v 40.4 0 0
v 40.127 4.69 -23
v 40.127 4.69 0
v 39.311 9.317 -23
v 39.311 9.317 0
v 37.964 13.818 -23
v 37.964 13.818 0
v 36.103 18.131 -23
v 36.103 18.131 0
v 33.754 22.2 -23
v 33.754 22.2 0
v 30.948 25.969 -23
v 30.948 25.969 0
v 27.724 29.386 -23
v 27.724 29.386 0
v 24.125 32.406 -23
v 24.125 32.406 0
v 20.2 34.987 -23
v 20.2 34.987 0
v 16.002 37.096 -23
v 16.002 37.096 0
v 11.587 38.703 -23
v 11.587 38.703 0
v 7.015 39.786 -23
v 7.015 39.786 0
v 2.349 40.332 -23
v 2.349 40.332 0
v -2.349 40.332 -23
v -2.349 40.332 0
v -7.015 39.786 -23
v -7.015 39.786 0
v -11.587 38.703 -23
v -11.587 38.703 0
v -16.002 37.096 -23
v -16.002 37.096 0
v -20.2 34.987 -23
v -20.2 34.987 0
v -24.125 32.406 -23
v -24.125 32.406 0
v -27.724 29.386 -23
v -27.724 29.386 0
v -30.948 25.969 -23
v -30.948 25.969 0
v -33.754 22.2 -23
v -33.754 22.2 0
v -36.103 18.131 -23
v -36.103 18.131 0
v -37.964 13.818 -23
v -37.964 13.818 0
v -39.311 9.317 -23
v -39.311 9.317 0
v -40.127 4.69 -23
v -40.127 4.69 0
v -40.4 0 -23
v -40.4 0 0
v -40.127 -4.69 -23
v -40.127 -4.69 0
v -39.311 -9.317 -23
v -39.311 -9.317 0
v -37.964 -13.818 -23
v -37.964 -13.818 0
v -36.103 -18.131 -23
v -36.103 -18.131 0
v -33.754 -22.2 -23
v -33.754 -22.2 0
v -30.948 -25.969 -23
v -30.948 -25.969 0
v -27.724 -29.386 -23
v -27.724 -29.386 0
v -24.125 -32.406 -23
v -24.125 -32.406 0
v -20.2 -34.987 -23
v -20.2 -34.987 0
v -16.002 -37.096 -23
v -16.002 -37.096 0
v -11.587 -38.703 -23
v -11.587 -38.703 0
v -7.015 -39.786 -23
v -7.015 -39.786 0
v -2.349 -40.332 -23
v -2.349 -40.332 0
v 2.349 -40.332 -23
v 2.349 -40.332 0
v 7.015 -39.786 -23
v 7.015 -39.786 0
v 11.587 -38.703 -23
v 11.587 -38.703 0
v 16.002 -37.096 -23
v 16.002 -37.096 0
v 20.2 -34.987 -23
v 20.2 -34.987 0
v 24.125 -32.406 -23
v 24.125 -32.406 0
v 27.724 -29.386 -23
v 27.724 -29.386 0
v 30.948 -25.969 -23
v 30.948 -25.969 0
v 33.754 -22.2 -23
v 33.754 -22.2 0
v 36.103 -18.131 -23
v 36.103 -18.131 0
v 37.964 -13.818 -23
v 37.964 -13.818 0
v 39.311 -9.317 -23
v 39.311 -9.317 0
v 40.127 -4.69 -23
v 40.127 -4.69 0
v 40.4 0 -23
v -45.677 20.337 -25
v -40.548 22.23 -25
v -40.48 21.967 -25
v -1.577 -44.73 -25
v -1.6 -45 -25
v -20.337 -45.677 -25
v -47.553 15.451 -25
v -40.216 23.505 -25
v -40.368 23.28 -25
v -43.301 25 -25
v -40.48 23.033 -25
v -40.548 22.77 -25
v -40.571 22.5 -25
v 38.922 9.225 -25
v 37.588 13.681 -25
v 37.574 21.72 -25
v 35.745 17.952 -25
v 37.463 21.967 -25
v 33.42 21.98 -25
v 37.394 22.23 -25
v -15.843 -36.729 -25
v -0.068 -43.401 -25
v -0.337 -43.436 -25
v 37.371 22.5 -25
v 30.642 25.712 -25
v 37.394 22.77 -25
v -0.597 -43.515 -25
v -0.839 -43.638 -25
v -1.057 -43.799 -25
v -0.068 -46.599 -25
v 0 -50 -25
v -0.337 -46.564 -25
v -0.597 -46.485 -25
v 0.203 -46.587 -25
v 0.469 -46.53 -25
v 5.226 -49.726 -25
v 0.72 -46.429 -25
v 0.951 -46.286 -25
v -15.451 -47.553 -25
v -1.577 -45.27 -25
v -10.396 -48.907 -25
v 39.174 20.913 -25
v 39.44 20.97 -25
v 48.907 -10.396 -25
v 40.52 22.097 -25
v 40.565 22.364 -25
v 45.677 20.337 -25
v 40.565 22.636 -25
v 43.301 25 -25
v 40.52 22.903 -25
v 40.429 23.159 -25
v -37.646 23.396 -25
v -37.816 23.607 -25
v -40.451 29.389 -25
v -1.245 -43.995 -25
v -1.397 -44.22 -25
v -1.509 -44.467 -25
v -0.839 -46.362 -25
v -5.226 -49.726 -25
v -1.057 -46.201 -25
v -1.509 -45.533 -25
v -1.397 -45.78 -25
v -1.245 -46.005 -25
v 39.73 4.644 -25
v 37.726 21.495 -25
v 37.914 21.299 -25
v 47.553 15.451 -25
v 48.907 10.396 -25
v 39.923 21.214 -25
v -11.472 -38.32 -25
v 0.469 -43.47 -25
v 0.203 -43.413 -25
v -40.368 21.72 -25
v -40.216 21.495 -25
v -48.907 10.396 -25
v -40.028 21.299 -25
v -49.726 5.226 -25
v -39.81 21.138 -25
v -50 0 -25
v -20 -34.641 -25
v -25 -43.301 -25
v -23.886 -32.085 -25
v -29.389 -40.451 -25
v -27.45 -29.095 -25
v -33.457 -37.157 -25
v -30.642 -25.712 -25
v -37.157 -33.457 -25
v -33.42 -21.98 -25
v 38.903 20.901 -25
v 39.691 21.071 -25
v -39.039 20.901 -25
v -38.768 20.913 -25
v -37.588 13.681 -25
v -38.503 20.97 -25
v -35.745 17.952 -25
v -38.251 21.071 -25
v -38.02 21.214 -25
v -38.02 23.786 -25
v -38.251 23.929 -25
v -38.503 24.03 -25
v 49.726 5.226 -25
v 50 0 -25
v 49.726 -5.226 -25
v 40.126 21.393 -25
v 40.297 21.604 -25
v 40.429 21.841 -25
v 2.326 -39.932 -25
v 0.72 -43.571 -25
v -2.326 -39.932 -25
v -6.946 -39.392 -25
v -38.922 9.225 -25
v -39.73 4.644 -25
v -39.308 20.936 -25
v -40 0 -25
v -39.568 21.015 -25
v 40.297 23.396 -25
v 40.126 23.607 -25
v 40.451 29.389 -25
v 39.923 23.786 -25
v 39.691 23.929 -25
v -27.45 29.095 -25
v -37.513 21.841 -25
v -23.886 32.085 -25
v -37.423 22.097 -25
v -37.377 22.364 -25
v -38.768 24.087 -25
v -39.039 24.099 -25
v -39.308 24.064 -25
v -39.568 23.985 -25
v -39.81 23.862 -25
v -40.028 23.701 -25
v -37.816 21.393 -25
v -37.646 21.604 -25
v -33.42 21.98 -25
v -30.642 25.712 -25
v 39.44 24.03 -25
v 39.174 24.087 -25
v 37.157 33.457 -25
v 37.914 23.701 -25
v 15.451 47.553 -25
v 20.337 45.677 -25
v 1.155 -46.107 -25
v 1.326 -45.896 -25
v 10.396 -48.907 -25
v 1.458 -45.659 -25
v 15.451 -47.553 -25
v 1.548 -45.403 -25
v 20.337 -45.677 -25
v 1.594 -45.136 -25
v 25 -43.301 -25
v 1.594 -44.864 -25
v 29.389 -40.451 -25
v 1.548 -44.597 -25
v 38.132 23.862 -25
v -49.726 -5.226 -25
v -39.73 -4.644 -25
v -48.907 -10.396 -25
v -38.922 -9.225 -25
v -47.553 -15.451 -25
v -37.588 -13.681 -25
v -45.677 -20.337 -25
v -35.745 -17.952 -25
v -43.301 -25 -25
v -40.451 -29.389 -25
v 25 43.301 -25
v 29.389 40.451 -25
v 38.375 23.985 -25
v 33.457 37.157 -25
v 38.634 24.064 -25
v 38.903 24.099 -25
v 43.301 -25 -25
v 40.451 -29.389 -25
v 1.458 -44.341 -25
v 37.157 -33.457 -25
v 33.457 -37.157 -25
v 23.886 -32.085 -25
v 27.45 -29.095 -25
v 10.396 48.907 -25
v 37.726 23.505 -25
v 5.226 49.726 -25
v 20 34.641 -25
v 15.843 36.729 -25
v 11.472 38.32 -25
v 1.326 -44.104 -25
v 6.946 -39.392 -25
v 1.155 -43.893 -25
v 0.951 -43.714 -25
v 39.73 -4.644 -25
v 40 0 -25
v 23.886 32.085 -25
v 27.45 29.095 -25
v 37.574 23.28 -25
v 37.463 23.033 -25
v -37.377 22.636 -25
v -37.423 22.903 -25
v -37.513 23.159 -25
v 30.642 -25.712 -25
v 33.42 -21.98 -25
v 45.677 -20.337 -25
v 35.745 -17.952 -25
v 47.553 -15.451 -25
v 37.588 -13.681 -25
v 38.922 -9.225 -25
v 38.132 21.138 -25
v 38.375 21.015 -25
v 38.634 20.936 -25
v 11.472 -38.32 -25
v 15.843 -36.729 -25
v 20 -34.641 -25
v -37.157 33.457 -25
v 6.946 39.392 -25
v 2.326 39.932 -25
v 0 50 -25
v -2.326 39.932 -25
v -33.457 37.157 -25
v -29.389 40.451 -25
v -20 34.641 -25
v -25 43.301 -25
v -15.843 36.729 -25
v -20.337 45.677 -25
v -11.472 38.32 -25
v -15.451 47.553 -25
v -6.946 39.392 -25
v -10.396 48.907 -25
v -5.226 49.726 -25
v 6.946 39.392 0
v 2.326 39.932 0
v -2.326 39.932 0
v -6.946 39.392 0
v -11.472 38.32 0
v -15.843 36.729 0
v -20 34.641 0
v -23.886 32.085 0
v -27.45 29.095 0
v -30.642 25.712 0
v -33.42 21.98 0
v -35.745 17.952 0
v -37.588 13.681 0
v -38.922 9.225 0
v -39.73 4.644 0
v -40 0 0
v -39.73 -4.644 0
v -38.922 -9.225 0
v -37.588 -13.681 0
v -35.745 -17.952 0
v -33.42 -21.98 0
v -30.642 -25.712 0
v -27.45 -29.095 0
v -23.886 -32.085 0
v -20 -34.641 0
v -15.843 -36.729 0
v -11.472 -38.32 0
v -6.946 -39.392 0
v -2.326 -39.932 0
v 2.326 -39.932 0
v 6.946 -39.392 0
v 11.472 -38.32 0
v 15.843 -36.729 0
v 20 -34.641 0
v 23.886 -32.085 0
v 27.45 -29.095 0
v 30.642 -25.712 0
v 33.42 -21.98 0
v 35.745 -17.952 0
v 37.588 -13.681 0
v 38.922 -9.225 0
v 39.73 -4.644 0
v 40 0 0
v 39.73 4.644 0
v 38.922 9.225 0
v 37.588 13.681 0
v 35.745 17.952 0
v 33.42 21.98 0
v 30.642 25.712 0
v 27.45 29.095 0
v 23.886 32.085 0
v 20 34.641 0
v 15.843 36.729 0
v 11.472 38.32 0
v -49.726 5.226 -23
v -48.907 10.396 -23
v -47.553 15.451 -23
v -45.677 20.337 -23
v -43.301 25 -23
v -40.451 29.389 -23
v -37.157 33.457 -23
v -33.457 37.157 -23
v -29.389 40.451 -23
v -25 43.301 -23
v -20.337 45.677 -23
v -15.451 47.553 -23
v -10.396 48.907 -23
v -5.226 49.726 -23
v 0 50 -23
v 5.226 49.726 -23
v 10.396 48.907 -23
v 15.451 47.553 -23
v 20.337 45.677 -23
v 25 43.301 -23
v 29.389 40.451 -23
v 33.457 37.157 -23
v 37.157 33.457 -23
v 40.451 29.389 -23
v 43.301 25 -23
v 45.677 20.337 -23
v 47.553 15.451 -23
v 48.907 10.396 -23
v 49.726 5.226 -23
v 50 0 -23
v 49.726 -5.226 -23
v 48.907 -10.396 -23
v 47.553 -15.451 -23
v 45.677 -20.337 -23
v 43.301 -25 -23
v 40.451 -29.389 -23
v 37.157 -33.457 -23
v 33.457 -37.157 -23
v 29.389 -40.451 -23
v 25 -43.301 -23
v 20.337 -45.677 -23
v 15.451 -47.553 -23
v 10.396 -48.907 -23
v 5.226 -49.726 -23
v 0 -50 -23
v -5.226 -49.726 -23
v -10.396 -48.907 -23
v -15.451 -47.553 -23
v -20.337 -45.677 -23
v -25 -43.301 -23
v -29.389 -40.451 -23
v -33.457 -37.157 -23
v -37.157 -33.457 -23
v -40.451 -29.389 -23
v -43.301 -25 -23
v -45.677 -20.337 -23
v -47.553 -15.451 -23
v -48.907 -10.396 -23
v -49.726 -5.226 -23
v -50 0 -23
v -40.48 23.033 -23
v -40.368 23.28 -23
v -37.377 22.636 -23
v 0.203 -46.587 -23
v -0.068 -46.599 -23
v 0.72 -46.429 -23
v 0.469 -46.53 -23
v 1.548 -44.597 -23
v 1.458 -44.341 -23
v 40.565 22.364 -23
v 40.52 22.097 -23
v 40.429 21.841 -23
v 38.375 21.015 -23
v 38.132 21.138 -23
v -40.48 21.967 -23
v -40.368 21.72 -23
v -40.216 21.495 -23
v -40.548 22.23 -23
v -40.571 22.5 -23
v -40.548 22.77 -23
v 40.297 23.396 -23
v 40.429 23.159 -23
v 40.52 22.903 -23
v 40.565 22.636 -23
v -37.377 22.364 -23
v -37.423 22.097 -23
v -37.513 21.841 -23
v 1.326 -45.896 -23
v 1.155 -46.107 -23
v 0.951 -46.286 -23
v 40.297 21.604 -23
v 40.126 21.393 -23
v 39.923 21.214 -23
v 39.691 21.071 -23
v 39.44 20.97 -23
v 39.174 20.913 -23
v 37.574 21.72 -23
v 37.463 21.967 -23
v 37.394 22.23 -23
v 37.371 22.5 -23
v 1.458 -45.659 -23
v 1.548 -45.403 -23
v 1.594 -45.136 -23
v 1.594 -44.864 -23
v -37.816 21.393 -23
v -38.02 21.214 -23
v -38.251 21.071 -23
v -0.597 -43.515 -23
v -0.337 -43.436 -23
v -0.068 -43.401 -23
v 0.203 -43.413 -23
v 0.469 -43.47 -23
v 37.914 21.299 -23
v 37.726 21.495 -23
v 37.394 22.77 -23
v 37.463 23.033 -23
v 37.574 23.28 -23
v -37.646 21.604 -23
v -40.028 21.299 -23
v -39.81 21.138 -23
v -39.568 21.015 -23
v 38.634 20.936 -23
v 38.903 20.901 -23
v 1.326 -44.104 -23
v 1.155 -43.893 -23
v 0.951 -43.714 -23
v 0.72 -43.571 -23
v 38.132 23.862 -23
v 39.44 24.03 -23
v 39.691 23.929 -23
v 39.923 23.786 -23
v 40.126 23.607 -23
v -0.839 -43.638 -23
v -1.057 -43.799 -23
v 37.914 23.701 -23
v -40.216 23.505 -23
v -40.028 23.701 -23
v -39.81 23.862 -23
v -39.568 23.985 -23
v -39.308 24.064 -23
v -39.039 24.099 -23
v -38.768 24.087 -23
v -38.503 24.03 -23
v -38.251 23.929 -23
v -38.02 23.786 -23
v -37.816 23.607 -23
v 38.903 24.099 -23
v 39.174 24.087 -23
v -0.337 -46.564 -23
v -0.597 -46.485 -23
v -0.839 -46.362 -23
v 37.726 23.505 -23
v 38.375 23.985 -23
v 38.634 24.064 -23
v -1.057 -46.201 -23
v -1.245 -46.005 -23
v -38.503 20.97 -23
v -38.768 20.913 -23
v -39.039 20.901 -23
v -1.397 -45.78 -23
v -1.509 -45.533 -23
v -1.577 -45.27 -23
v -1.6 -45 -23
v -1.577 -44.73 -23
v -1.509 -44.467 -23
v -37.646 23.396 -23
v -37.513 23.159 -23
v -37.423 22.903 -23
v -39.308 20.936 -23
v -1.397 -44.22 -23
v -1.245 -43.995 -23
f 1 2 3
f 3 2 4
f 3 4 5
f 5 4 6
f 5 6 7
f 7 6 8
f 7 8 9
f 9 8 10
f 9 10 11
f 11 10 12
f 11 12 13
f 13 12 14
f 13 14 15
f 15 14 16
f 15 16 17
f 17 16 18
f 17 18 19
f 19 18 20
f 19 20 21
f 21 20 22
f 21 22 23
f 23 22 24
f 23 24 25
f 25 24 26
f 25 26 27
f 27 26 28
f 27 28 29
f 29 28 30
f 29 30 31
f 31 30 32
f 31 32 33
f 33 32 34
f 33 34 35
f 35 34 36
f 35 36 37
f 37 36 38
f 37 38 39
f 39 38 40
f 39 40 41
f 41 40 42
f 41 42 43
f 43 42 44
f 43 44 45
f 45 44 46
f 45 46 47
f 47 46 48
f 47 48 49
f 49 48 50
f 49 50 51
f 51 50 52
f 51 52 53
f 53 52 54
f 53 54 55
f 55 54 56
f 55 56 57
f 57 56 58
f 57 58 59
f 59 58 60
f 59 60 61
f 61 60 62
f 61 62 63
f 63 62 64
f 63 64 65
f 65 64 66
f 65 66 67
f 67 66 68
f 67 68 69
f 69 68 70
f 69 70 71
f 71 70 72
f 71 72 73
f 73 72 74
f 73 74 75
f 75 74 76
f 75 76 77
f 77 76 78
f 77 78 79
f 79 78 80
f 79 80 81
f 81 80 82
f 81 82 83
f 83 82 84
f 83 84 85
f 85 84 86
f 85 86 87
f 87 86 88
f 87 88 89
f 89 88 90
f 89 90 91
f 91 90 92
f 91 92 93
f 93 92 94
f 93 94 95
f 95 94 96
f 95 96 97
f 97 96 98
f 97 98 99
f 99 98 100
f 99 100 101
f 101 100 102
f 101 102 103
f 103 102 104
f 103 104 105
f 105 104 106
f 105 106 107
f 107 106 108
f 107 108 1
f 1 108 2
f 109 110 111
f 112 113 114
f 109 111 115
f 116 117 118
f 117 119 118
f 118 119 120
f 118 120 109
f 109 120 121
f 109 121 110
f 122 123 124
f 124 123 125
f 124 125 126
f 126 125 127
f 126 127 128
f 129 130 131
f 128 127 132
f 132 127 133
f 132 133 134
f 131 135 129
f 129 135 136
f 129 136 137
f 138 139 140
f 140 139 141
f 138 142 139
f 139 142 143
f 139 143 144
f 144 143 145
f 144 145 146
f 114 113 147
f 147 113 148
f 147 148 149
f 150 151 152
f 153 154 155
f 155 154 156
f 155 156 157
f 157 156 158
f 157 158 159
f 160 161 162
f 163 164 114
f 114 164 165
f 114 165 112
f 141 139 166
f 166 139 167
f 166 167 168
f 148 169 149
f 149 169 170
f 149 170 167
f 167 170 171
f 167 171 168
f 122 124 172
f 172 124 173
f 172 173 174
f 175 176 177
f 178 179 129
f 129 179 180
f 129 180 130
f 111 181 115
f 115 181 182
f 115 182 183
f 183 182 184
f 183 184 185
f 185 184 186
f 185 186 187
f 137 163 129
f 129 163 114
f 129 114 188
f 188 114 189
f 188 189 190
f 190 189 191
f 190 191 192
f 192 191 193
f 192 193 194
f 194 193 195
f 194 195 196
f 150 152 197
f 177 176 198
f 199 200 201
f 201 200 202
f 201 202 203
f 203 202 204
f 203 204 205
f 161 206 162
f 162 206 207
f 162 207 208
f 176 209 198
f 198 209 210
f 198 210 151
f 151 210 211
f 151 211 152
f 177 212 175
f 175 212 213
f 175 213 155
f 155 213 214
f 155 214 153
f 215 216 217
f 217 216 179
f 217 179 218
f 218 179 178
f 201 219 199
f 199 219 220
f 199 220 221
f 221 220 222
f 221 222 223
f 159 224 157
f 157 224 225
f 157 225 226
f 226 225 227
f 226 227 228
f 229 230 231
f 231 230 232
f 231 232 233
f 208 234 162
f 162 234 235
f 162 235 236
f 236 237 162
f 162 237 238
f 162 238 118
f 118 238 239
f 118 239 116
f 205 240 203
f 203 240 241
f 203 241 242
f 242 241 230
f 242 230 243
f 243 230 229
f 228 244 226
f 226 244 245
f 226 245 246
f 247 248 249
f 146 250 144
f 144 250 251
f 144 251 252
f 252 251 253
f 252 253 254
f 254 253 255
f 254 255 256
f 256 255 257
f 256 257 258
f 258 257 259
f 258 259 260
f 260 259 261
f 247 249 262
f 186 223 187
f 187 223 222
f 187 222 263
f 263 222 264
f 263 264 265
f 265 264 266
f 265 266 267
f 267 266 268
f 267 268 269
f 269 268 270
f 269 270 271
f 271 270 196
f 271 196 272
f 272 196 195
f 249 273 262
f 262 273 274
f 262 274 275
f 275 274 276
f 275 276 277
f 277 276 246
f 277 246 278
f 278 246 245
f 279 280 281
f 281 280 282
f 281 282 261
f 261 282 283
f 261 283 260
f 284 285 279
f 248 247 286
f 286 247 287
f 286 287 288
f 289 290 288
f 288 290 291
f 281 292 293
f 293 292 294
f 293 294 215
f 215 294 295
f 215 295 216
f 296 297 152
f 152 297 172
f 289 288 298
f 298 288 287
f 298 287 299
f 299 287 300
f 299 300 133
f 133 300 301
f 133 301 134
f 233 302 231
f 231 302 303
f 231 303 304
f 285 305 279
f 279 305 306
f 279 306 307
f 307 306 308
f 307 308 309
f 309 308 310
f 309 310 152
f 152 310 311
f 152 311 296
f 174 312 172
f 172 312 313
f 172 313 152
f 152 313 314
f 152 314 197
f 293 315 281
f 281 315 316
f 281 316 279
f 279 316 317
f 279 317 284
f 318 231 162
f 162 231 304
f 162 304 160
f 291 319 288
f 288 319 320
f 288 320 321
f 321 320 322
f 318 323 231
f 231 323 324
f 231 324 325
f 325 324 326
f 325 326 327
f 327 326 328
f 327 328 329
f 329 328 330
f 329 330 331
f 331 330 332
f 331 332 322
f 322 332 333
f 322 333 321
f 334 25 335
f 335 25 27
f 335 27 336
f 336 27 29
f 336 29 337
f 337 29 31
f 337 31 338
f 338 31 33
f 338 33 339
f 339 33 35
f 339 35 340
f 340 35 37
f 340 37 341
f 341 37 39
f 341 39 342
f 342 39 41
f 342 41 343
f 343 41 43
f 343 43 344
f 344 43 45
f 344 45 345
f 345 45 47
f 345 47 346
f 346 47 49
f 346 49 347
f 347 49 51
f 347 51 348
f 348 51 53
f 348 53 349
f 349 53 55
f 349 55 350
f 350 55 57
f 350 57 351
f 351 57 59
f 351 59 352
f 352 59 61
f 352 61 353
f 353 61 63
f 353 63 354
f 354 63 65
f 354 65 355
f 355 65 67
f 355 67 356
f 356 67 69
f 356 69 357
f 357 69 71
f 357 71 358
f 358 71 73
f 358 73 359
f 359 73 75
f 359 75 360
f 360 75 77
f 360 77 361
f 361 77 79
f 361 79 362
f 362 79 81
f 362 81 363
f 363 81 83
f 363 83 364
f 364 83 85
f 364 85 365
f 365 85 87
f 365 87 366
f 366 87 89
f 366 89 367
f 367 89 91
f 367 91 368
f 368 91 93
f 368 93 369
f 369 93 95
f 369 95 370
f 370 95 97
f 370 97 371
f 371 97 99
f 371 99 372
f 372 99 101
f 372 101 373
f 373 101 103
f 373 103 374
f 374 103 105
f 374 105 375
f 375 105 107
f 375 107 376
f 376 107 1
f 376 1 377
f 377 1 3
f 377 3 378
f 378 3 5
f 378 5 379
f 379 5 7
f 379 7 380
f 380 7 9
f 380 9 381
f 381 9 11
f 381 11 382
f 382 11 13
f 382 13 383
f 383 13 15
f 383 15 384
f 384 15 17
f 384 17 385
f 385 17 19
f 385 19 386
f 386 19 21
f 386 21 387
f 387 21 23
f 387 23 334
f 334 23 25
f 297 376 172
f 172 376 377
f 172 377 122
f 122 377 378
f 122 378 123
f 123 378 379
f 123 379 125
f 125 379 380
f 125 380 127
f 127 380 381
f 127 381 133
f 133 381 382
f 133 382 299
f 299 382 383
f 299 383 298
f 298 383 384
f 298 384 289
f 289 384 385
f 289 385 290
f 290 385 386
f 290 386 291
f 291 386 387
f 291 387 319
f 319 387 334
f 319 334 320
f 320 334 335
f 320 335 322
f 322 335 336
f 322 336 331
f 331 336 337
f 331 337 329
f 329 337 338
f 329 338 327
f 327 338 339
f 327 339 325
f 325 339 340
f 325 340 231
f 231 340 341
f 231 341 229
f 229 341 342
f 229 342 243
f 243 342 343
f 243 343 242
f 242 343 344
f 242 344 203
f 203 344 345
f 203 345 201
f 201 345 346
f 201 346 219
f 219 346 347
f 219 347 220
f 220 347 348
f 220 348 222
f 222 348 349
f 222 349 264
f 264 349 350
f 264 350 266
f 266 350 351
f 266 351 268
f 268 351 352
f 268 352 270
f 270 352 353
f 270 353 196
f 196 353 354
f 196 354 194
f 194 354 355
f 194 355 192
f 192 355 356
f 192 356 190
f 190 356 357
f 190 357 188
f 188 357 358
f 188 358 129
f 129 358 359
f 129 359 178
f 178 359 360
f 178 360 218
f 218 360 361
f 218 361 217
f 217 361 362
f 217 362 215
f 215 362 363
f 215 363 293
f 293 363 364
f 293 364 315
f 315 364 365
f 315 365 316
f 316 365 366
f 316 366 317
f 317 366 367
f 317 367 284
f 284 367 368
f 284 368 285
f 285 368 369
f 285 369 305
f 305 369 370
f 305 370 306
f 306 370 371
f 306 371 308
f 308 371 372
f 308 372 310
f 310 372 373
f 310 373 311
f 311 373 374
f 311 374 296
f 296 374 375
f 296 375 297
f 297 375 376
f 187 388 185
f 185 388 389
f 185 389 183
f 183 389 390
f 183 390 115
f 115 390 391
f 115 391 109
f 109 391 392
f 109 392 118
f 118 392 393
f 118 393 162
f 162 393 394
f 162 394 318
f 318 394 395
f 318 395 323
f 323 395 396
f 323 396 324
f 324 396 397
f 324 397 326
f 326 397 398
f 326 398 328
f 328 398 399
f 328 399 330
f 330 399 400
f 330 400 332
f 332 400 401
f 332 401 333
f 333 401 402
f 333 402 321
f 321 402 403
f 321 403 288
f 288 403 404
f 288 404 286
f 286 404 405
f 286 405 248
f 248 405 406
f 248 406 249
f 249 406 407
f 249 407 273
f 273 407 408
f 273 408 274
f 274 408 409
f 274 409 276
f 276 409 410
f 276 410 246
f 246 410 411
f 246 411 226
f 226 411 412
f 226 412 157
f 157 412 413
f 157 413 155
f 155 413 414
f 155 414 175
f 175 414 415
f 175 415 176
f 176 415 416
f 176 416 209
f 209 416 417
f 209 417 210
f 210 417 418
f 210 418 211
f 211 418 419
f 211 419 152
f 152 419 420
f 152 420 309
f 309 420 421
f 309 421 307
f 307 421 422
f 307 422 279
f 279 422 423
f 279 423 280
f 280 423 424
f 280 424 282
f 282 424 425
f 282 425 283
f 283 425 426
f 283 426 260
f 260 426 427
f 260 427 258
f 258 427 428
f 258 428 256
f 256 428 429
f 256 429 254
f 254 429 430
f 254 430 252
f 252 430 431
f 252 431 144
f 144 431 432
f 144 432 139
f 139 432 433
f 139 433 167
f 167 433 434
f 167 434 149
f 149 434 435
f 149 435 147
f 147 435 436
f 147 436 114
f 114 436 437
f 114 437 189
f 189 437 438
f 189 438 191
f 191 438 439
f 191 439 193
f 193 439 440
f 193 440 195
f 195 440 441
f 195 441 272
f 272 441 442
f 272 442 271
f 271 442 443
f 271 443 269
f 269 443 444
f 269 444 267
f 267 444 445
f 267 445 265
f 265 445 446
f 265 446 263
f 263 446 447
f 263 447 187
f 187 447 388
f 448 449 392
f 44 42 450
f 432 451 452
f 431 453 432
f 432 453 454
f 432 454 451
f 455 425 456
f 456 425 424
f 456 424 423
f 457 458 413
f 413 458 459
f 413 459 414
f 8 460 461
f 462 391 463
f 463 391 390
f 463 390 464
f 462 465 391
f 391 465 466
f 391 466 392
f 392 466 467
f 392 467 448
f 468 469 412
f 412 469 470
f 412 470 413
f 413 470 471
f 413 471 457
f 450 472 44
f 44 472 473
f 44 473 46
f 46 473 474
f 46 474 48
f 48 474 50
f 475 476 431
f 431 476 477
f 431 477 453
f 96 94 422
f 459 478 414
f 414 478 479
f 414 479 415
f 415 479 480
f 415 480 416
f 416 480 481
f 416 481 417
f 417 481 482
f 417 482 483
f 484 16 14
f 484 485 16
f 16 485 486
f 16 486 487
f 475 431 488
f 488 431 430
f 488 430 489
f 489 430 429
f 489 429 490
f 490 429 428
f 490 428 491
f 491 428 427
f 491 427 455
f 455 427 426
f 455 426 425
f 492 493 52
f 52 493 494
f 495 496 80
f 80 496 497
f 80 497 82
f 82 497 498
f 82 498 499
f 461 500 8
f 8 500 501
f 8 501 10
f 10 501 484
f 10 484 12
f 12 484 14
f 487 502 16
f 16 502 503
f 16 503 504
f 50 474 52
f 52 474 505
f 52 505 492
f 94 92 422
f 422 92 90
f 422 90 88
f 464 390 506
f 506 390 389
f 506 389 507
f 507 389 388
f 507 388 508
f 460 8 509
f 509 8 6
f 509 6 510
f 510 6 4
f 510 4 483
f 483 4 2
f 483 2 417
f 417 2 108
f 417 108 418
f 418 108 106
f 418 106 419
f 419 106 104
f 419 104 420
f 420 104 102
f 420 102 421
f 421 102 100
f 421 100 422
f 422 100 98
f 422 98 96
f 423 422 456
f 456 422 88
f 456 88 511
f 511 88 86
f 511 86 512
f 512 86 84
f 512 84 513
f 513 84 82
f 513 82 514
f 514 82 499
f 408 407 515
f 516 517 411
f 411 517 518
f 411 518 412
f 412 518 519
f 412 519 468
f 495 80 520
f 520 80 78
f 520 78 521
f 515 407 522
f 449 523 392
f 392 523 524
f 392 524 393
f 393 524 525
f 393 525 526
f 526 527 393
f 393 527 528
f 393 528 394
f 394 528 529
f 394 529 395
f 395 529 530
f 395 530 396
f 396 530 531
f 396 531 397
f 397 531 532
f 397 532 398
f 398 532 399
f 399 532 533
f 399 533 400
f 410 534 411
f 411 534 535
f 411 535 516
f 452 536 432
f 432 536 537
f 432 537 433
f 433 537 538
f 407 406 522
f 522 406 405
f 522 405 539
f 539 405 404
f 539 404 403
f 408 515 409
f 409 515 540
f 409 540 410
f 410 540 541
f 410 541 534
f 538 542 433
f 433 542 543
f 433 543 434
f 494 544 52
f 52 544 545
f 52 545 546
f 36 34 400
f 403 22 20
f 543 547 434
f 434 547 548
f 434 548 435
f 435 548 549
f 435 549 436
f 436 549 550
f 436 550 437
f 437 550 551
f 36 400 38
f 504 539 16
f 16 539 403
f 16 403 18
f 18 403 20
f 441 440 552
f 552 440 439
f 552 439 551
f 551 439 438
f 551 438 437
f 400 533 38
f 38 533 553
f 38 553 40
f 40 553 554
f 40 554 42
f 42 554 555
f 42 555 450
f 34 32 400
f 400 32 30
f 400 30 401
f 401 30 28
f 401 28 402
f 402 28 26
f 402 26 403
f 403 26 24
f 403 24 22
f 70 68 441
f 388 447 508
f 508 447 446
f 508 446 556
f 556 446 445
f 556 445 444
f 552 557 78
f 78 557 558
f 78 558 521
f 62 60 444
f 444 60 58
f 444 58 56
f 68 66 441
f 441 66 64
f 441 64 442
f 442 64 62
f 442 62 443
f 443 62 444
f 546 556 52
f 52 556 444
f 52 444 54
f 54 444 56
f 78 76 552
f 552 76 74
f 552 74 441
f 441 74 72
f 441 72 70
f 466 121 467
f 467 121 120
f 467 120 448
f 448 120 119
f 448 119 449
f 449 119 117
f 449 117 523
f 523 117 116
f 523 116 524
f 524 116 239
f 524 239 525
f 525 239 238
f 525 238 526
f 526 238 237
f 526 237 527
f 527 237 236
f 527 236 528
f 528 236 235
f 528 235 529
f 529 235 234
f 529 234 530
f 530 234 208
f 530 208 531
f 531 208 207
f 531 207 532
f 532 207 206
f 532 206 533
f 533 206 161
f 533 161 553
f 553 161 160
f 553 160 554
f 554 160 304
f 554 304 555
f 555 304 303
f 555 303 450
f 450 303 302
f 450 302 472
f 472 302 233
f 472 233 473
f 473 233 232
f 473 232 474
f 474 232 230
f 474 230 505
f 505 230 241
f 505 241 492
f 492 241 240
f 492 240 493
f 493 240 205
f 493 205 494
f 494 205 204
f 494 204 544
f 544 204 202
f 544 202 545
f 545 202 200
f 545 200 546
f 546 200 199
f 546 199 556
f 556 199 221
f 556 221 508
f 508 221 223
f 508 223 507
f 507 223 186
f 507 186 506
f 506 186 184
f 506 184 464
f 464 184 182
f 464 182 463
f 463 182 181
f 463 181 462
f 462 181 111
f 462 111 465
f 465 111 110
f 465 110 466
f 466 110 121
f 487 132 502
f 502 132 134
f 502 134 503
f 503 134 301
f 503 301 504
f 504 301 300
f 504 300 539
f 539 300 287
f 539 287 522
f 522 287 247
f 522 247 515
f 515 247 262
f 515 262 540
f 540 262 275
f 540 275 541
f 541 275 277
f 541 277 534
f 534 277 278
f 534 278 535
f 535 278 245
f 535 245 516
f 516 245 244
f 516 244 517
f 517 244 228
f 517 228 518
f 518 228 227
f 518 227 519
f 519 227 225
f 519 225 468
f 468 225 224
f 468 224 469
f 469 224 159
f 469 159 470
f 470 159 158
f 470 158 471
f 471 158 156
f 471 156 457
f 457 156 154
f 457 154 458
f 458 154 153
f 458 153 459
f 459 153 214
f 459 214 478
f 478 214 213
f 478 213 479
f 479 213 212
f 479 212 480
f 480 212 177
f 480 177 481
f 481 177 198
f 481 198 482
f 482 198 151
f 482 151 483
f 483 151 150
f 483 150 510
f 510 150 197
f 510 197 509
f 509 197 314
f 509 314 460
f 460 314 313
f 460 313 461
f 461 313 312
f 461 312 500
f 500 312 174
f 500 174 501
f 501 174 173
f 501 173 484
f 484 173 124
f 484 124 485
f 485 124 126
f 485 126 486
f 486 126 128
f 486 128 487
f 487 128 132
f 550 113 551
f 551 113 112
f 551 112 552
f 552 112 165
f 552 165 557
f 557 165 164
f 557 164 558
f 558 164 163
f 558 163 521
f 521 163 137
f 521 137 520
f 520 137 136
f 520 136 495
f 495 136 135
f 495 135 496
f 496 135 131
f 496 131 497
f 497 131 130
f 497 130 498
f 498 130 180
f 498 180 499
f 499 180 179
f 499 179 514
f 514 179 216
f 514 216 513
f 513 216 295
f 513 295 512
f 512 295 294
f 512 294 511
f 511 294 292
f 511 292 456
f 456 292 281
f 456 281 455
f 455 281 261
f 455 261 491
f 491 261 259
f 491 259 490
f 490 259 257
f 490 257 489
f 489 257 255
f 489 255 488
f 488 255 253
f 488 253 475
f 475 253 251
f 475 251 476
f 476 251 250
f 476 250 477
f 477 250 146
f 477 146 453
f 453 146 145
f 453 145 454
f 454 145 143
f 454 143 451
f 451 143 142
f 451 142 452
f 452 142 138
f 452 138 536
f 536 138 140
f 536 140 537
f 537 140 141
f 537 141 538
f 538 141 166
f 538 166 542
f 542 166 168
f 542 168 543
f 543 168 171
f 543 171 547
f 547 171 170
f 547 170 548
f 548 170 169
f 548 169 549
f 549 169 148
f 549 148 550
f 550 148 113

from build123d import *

# Parameters (mm, degrees)
ESQUISSE1_R        = 40.4
ESQUISSE1_R_2      = 40
BOSS_EXTRU_1_DEPTH = 25
BOSS_EXTRU_2_START = -2
ESQUISSE2_R        = 50
ESQUISSE2_R_2      = 1.6
ESQUISSE2_R_3      = 40
BOSS_EXTRU_2_DEPTH = 2


with BuildPart() as part:
    # Esquisse1 → Boss.-Extru.1 (new body)
    with BuildSketch(Plane.XY):
        Circle(ESQUISSE1_R)
        Circle(ESQUISSE1_R_2, mode=Mode.SUBTRACT)
    extrude(amount=-BOSS_EXTRU_1_DEPTH)

    # Esquisse2 → Boss.-Extru.2 (add)
    with BuildSketch(Plane(origin=(0, 0, -25), x_dir=(-1, 0, 0), z_dir=(0, 0, -1)).offset(BOSS_EXTRU_2_START)):
        Circle(ESQUISSE2_R)
        with Locations((-38.97114317, 22.5)):
            Circle(ESQUISSE2_R_2, mode=Mode.SUBTRACT)
        with Locations((38.97114317, 22.5)):
            Circle(ESQUISSE2_R_2, mode=Mode.SUBTRACT)
        with Locations((0, -45)):
            Circle(ESQUISSE2_R_2, mode=Mode.SUBTRACT)
        with Locations(Location((0, 0, 0), (0, 0, 180))):
            Circle(ESQUISSE2_R_3, mode=Mode.SUBTRACT)
    extrude(amount=BOSS_EXTRU_2_DEPTH)


solid = part.part
